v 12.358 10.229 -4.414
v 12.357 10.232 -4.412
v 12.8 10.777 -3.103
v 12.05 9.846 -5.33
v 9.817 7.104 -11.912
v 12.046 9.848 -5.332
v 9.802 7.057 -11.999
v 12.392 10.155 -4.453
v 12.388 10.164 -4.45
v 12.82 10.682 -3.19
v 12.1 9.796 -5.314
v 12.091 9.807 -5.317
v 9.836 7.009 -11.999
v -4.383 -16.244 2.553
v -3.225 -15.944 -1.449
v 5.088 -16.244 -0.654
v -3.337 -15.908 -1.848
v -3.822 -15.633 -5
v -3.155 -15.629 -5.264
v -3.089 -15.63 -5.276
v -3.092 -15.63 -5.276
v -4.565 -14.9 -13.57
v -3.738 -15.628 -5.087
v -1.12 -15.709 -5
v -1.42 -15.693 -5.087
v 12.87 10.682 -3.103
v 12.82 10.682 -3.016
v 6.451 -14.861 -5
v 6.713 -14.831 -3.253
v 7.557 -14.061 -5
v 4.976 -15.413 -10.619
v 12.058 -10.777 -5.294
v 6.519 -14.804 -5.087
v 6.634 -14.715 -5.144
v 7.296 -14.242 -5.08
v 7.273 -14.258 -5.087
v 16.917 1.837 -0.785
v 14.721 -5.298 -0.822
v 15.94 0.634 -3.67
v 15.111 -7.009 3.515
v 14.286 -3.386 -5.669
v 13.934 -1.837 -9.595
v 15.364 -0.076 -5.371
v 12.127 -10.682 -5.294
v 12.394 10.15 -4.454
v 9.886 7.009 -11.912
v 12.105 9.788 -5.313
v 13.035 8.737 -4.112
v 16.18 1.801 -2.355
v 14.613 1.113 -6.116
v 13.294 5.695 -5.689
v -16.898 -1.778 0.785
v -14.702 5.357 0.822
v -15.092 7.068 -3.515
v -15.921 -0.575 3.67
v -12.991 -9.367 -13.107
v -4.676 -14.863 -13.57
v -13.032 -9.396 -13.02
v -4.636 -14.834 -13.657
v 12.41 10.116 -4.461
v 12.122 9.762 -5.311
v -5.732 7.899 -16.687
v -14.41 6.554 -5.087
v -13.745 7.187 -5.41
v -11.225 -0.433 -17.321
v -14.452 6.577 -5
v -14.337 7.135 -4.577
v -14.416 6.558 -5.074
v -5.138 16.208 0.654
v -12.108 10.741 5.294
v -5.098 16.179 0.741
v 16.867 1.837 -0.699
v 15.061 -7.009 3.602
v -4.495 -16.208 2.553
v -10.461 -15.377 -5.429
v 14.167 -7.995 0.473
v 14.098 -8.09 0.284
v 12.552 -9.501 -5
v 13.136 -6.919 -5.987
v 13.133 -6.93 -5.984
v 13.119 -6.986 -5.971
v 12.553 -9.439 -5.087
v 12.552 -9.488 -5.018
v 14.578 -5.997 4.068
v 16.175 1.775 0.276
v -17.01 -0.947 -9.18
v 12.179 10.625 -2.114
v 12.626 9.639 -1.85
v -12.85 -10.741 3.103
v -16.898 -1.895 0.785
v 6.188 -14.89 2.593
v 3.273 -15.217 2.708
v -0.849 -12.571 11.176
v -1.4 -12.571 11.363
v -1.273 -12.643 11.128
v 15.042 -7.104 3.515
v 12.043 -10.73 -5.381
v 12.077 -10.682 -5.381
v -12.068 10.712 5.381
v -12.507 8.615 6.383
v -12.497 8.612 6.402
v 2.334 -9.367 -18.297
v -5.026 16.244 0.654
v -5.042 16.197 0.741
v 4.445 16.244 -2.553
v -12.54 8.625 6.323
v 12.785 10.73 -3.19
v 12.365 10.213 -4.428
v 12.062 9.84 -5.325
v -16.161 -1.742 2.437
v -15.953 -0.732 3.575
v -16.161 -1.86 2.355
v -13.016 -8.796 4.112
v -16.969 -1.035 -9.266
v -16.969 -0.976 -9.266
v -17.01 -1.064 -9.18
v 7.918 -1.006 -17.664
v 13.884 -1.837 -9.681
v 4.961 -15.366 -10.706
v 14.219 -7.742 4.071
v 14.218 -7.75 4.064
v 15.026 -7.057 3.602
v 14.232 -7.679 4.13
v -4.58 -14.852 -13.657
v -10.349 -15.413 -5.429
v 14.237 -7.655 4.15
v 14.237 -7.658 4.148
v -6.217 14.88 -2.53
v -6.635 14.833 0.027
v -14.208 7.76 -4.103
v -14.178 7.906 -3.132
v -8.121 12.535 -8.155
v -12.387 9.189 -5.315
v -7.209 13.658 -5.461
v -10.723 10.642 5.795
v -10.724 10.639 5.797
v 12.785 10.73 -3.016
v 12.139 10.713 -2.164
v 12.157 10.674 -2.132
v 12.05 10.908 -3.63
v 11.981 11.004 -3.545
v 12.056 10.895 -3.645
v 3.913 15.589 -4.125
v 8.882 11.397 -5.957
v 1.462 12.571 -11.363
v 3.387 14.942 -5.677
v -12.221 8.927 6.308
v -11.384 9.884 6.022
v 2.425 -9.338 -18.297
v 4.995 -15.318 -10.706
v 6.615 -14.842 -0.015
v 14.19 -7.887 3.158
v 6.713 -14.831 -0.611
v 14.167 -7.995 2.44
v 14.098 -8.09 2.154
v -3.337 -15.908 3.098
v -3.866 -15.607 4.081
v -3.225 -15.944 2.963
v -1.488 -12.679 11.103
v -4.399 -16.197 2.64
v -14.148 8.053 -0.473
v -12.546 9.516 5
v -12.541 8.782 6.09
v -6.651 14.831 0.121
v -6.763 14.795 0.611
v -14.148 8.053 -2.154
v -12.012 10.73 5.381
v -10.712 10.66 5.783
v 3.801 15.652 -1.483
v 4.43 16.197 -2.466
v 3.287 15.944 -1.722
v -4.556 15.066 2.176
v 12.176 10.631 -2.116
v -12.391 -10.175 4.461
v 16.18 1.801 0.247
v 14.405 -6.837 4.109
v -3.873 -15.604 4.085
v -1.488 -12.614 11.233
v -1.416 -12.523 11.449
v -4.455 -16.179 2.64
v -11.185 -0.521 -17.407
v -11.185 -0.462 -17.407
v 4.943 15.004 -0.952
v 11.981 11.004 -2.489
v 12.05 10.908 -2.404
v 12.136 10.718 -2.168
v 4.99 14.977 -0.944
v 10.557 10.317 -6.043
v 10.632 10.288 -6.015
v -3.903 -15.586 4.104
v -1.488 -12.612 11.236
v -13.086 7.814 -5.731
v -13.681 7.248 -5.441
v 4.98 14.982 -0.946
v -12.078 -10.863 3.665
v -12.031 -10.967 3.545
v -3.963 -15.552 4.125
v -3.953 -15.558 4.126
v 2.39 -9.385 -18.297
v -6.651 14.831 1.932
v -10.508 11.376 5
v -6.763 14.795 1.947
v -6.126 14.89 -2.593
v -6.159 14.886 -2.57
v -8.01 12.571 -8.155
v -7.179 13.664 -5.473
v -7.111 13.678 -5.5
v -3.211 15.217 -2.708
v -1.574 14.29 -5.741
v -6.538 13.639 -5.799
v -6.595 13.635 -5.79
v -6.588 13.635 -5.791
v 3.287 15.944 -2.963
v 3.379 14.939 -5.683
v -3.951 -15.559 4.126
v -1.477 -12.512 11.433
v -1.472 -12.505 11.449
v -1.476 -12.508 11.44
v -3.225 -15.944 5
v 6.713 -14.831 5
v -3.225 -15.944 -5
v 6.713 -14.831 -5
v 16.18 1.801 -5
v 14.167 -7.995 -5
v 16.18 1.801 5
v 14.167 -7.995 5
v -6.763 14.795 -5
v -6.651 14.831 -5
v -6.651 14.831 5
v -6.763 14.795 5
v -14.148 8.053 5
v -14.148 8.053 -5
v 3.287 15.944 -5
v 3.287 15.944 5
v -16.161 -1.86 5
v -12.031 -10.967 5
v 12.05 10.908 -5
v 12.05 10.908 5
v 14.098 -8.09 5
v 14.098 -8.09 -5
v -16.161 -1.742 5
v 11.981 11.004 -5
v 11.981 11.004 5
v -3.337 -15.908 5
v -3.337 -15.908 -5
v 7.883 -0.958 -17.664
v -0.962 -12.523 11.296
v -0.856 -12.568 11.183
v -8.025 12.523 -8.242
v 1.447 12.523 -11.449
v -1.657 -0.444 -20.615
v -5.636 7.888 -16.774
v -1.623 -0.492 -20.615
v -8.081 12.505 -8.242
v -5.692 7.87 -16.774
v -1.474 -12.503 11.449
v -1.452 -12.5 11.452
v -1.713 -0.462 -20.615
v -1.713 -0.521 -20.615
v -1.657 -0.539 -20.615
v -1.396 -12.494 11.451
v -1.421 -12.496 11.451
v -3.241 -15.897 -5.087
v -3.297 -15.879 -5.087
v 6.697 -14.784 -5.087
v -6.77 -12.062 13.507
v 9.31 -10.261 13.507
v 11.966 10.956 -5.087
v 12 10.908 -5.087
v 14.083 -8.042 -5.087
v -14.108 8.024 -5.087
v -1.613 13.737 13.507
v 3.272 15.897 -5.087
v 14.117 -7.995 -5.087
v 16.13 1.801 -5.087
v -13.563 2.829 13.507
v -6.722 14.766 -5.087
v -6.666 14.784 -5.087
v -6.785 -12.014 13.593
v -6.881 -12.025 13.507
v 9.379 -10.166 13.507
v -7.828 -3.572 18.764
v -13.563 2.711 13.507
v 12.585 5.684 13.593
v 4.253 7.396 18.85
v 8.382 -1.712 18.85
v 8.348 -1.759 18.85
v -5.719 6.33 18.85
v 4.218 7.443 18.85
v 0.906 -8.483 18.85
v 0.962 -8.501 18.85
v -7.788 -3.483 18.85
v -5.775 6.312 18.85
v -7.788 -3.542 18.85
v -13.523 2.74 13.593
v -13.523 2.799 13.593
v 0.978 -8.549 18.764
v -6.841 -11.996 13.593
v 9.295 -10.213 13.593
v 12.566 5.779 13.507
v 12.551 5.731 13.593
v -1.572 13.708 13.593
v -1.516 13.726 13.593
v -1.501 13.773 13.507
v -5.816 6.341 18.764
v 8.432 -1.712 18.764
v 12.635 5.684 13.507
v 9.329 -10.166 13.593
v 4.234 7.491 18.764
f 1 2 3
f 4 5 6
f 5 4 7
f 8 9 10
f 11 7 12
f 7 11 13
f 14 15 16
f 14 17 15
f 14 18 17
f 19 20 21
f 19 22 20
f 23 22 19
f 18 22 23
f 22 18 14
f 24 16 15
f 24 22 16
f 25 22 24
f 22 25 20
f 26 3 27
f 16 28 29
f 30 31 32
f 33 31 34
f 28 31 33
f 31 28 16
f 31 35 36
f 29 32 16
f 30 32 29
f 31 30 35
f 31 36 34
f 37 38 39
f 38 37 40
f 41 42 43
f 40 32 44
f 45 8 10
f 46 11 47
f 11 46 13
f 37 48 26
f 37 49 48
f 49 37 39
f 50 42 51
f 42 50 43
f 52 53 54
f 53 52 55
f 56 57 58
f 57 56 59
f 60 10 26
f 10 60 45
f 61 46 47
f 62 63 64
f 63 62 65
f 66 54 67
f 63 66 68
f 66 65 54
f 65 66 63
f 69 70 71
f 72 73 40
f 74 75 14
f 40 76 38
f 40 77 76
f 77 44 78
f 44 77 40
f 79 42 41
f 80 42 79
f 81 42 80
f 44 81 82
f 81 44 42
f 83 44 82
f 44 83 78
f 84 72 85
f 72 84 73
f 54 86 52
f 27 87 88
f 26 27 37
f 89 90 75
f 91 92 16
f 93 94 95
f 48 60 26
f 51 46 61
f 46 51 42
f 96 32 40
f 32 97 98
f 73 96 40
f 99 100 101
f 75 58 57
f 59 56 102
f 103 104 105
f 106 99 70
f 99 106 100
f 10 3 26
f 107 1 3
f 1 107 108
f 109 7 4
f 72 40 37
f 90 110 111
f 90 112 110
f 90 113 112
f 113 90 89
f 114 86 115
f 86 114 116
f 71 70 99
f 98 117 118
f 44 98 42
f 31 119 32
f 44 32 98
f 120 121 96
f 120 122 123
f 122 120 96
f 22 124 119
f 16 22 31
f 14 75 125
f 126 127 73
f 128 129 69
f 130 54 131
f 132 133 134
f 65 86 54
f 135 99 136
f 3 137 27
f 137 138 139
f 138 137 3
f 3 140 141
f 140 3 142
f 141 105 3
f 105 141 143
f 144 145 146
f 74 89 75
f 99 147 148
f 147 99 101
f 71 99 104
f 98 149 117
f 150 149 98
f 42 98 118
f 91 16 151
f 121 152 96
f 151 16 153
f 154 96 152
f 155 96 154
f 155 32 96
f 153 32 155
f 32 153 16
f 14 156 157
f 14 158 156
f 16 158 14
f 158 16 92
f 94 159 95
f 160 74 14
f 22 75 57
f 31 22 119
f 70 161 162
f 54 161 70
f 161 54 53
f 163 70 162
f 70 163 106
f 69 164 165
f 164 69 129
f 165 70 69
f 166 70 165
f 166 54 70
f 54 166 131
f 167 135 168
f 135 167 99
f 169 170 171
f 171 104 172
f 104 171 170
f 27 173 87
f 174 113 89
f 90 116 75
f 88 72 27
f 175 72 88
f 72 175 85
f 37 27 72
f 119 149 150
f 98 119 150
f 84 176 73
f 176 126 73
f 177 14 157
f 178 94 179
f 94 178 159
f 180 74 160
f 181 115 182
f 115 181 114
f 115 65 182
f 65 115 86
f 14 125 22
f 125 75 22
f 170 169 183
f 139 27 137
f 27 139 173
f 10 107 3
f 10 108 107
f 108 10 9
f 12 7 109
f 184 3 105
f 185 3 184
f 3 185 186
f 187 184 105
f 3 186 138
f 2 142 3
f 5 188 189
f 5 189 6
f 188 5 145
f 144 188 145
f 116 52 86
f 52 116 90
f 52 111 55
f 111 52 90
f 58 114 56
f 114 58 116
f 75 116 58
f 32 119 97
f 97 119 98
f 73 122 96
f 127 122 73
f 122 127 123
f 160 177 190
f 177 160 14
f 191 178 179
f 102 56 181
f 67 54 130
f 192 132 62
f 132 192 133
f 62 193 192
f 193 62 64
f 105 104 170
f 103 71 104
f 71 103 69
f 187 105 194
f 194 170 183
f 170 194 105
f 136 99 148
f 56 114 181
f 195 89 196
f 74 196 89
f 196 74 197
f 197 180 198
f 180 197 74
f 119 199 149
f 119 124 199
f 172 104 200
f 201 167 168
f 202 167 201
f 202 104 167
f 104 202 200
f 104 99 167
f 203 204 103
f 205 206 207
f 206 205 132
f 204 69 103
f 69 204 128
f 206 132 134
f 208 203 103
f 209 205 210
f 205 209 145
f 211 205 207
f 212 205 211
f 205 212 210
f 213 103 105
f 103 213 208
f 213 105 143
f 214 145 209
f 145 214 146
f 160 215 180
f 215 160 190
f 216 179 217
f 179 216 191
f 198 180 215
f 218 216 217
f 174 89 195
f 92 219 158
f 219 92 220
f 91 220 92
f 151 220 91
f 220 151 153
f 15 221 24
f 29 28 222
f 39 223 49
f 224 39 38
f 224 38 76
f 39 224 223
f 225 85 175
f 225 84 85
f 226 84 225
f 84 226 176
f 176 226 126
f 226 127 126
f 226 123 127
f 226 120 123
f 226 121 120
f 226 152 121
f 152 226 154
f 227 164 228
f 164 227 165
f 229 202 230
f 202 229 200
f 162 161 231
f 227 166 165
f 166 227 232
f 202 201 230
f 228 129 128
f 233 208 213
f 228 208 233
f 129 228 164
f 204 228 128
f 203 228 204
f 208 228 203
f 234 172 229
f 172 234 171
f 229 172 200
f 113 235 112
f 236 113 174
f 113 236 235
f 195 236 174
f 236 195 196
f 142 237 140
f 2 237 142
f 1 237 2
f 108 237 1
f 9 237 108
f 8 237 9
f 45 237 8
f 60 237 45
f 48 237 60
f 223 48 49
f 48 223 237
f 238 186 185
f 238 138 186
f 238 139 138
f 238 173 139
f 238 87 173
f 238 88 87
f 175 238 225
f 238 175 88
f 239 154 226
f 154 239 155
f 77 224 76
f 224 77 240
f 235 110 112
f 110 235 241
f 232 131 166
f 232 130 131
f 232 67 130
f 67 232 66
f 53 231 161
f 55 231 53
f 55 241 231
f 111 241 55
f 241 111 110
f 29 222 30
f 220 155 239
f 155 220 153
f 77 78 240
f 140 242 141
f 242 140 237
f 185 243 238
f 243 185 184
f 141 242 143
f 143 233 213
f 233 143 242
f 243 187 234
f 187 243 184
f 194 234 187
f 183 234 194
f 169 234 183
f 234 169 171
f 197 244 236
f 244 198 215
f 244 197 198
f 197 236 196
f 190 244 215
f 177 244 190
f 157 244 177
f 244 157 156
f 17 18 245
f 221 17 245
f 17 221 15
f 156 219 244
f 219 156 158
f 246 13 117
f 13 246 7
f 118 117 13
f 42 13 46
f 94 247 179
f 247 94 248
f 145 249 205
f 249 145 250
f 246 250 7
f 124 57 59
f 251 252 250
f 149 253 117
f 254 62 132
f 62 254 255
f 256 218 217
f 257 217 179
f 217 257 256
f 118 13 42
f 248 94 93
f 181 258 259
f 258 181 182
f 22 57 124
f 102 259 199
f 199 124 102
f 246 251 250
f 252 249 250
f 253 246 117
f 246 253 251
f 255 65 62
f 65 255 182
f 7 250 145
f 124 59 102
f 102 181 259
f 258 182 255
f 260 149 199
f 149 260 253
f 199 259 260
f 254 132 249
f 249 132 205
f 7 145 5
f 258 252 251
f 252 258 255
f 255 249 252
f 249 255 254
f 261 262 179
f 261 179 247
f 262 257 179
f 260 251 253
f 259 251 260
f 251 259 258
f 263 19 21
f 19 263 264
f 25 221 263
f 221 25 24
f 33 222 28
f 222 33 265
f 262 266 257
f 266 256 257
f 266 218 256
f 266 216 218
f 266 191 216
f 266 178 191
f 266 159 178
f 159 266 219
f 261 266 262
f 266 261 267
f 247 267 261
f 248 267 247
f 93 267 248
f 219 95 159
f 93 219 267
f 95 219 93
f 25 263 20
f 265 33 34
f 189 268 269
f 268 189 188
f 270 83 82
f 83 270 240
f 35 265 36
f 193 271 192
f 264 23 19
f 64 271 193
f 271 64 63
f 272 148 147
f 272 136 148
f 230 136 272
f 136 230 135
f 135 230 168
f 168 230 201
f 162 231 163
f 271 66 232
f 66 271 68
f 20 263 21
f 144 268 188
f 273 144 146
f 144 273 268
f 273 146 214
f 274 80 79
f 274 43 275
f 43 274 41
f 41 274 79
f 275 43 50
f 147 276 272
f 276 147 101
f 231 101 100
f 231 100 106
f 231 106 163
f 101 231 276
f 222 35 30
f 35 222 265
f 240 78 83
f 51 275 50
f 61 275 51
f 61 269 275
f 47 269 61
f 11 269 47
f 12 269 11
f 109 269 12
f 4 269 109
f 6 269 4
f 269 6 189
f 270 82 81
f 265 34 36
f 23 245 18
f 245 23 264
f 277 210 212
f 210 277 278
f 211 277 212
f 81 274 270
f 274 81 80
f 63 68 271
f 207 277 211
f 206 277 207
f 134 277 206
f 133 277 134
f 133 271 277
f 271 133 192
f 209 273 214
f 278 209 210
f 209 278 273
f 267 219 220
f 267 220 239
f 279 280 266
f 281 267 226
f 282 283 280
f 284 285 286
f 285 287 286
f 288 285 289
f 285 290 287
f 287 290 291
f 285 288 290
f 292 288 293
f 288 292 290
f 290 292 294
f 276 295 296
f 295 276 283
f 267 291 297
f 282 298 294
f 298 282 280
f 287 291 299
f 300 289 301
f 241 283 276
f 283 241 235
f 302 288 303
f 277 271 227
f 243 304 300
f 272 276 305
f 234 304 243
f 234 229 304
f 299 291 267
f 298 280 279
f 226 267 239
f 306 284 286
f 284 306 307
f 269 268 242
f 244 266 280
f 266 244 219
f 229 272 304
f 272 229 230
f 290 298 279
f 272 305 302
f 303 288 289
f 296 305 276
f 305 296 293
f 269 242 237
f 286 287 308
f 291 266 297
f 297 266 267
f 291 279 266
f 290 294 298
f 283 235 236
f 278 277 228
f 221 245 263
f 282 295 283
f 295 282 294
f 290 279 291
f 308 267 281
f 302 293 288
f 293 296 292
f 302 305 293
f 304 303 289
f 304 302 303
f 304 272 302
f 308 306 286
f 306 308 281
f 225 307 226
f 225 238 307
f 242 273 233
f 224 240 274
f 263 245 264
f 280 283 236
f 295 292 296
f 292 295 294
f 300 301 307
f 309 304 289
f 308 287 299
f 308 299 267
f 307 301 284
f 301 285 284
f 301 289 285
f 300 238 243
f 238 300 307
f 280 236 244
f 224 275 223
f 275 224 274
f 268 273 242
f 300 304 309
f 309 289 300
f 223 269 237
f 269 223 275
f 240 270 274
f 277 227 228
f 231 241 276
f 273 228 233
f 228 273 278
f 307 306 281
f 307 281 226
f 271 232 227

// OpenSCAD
// Auto-generated OpenSCAD file

    inner_points = 10*[[1.4067368092918164, -0.7994532745154926, 0.4999999999998308], [1.4067368092915926, -0.7994532745156754, -0.5000000000001692], [-1.4067368092915926, 0.7994532745156754, 0.5000000000001692], [-1.4067368092918164, 0.7994532745154926, -0.4999999999998308], [1.6079808299870764, 0.18008786506691687, 0.4999999999996069], [1.6079808299868528, 0.18008786506673424, -0.500000000000393], [0.6681671406727039, -1.4736304356503493, 0.5000000000001192], [0.6681671406724802, -1.473630435650532, -0.4999999999998807], [-0.6681671406724802, 1.473630435650532, 0.4999999999998807], [-0.6681671406727039, 1.4736304356503493, -0.5000000000001192], [-1.6079808299868528, -0.18008786506673424, 0.500000000000393], [-1.6079808299870764, -0.18008786506691687, -0.4999999999996069], [1.1950308268855827, 1.090841561155204, 0.4999999999995332], [1.1950308268853584, 1.0908415611550215, -0.5000000000004668], [-0.3256196655175062, -1.5849308572230525, 0.5000000000003623], [-0.32561966551773036, -1.584930857223235, -0.4999999999996378], [0.32561966551773036, 1.584930857223235, 0.4999999999996378], [0.3256196655175062, 1.5849308572230525, -0.5000000000003623], [-1.1950308268853584, -1.0908415611550215, 0.5000000000004668], [-1.1950308268855827, -1.090841561155204, -0.4999999999995332], [0.9279252557809003, -1.0165539388954856, 1.3506508083520177], [-1.3482227148786563, 0.2769886316881294, 1.3506508083522912], [1.2535449212985186, 0.5683769183276581, 1.3506508083516553], [-0.15319188799318584, 1.3678301928432421, 1.3506508083518245], [-0.6800555742060643, -1.1966418039623115, 1.3506508083524107], [0.8332474622002755, -0.17118838888009527, 1.8763819204710181], [-0.5734893470914291, 0.6282648856354888, 1.8763819204711873], [0.0946777935811629, -0.845365550014952, 1.8763819204713068], [-0.7747333677866893, -0.35127625394692097, 1.8763819204714112], [0.42029745909878125, 0.7395653072081917, 1.8763819204709444], [0.8332474621996254, -0.17118838888062501, -1.0257311121192891], [-0.5734893470920791, 0.6282648856349591, -1.02573111211912], [0.09467779358051293, -0.8453655500154817, -1.0257311121190005], [-0.7747333677873394, -0.3512762539474507, -1.0257311121188961], [0.42029745909813115, 0.739565307207662, -1.0257311121193629]];

    outer_points = 10*[[1.3833782883880748, -0.18366781795367643, -0.9594605946126766], [1.6817061295863125, 0.18366781795367643, -0.078515062948806], [-1.6817061295863125, -0.18366781795367643, 0.078515062948806], [-1.3833782883880748, 0.18366781795367643, 0.9594605946126766], [1.2027457527591328, -1.0682345020066348, -0.5294447012601022], [1.5010735939573705, -0.7008988660992819, 0.35150083040376845], [0.9786317893777532, 0.7008988660992819, -1.191240777118519], [1.276959630575991, 1.0682345020066348, -0.31029524545464815], [-1.276959630575991, -1.0682345020066348, 0.31029524545464815], [-0.9786317893777532, -0.7008988660992819, 1.191240777118519], [-1.5010735939573705, 0.7008988660992819, -0.35150083040376845], [-1.2027457527591328, 1.0682345020066348, 0.5294447012601022], [0.5057296716271069, -1.6149267780671528, -0.0654445526188289], [0.8040575128253447, -1.2475911421598, 0.8155009790450418], [0.14310566152258547, 1.2475911421598, -1.1362530969790507], [0.44143350272082327, 1.6149267780671528, -0.2553075653151802], [-0.44143350272082327, -1.6149267780671528, 0.2553075653151802], [-0.14310566152258547, -1.2475911421598, 1.1362530969790507], [-0.8040575128253447, 1.2475911421598, -0.8155009790450418], [-0.5057296716271069, 1.6149267780671528, 0.0654445526188289], [0.7868025461164767, -0.10055192633997795, -1.7577018690995023], [-1.692902837218647, -0.10055192633997795, -0.9179619223847519], [0.49453296399477237, -1.5318108864534543, -1.0619215379523868], [-1.0380092449924212, -1.5318108864534543, -0.5429337091716455], [-0.5651071272417749, 0.7840147577129805, -1.6687299336713355], [0.23746592489998974, -0.9337501643704182, -1.8210262146028207], [-1.2950762840872039, -0.9337501643704182, -1.3020383858220792], [-0.16728057411033165, -0.04918348031745989, -2.0528063971086628], [-1.1144437484582619, -0.04918348031745989, -1.7320542791746538], [-0.4595501562320361, -1.4804424404309362, -1.3570260659615474], [1.1032470408259272, 0.13229937193115845, 0.7355772938410956], [-0.42929516816126634, 0.13229937193115845, 1.2545651226218368], [0.6985005418156058, 1.0168660559841167, 0.5037971113352535], [-0.2486626325323244, 1.0168660559841167, 0.8245492292692624], [0.4062309596939014, -0.41439290412935936, 1.1995774424823689]];

    // Convex hull for inner set (I)
    module inner_hull() {
        hull() {
            for (p = inner_points) {
                translate(p) sphere(r=0.1);
            }
        }
    }

    // Convex hull for outer set (O) minus inner hull (O \ I)
    module outer_minus_inner() {
        difference() {
            hull() {
                for (p = outer_points) {
                    translate(p) sphere(r=0.1);
                }
            }
            inner_hull(); // Subtract inner hull
        }
    }

    // Convex hull for outer set (O) minus all translated inner hulls
    module outer_minus_AllTranslationInner() {
        difference() {
            hull() {
                for (p = outer_points) {
                    translate(p) sphere(r=0.1);
                }
            }
            hull() {
                translate([0,0,50]) inner_hull();
                translate([0,0,-50]) inner_hull();
            }; // Subtract translated inner hulls
        }
    }

    // Difference between outer_minus_inner and outer_minus_AllTranslationInner
    module outer_minus_inner_diff() {
        difference() {
            // Outer minus inner
            difference() {
                hull() {
                    for (p = outer_points) {
                        translate(p) sphere(r=0.1);
                    }
                }
                inner_hull();
            }

            // Subtract Outer minus AllTranslationInner
            difference() {
                hull() {
                    for (p = outer_points) {
                        translate(p) sphere(r=0.1);
                    }
                }
                hull() {
                    translate([0,0,50]) inner_hull();
                    translate([0,0,-50]) inner_hull();
                };
            }
        }
    }

    // Rendering all with colors applied
    color([1, 0, 0, 0.5]) inner_hull(); // Transparent red
    color([0, 1, 0, 1]) outer_minus_AllTranslationInner(); // Opaque green
    color([1, 1, 0, 1]) outer_minus_inner_diff(); // Opaque yellow
    
